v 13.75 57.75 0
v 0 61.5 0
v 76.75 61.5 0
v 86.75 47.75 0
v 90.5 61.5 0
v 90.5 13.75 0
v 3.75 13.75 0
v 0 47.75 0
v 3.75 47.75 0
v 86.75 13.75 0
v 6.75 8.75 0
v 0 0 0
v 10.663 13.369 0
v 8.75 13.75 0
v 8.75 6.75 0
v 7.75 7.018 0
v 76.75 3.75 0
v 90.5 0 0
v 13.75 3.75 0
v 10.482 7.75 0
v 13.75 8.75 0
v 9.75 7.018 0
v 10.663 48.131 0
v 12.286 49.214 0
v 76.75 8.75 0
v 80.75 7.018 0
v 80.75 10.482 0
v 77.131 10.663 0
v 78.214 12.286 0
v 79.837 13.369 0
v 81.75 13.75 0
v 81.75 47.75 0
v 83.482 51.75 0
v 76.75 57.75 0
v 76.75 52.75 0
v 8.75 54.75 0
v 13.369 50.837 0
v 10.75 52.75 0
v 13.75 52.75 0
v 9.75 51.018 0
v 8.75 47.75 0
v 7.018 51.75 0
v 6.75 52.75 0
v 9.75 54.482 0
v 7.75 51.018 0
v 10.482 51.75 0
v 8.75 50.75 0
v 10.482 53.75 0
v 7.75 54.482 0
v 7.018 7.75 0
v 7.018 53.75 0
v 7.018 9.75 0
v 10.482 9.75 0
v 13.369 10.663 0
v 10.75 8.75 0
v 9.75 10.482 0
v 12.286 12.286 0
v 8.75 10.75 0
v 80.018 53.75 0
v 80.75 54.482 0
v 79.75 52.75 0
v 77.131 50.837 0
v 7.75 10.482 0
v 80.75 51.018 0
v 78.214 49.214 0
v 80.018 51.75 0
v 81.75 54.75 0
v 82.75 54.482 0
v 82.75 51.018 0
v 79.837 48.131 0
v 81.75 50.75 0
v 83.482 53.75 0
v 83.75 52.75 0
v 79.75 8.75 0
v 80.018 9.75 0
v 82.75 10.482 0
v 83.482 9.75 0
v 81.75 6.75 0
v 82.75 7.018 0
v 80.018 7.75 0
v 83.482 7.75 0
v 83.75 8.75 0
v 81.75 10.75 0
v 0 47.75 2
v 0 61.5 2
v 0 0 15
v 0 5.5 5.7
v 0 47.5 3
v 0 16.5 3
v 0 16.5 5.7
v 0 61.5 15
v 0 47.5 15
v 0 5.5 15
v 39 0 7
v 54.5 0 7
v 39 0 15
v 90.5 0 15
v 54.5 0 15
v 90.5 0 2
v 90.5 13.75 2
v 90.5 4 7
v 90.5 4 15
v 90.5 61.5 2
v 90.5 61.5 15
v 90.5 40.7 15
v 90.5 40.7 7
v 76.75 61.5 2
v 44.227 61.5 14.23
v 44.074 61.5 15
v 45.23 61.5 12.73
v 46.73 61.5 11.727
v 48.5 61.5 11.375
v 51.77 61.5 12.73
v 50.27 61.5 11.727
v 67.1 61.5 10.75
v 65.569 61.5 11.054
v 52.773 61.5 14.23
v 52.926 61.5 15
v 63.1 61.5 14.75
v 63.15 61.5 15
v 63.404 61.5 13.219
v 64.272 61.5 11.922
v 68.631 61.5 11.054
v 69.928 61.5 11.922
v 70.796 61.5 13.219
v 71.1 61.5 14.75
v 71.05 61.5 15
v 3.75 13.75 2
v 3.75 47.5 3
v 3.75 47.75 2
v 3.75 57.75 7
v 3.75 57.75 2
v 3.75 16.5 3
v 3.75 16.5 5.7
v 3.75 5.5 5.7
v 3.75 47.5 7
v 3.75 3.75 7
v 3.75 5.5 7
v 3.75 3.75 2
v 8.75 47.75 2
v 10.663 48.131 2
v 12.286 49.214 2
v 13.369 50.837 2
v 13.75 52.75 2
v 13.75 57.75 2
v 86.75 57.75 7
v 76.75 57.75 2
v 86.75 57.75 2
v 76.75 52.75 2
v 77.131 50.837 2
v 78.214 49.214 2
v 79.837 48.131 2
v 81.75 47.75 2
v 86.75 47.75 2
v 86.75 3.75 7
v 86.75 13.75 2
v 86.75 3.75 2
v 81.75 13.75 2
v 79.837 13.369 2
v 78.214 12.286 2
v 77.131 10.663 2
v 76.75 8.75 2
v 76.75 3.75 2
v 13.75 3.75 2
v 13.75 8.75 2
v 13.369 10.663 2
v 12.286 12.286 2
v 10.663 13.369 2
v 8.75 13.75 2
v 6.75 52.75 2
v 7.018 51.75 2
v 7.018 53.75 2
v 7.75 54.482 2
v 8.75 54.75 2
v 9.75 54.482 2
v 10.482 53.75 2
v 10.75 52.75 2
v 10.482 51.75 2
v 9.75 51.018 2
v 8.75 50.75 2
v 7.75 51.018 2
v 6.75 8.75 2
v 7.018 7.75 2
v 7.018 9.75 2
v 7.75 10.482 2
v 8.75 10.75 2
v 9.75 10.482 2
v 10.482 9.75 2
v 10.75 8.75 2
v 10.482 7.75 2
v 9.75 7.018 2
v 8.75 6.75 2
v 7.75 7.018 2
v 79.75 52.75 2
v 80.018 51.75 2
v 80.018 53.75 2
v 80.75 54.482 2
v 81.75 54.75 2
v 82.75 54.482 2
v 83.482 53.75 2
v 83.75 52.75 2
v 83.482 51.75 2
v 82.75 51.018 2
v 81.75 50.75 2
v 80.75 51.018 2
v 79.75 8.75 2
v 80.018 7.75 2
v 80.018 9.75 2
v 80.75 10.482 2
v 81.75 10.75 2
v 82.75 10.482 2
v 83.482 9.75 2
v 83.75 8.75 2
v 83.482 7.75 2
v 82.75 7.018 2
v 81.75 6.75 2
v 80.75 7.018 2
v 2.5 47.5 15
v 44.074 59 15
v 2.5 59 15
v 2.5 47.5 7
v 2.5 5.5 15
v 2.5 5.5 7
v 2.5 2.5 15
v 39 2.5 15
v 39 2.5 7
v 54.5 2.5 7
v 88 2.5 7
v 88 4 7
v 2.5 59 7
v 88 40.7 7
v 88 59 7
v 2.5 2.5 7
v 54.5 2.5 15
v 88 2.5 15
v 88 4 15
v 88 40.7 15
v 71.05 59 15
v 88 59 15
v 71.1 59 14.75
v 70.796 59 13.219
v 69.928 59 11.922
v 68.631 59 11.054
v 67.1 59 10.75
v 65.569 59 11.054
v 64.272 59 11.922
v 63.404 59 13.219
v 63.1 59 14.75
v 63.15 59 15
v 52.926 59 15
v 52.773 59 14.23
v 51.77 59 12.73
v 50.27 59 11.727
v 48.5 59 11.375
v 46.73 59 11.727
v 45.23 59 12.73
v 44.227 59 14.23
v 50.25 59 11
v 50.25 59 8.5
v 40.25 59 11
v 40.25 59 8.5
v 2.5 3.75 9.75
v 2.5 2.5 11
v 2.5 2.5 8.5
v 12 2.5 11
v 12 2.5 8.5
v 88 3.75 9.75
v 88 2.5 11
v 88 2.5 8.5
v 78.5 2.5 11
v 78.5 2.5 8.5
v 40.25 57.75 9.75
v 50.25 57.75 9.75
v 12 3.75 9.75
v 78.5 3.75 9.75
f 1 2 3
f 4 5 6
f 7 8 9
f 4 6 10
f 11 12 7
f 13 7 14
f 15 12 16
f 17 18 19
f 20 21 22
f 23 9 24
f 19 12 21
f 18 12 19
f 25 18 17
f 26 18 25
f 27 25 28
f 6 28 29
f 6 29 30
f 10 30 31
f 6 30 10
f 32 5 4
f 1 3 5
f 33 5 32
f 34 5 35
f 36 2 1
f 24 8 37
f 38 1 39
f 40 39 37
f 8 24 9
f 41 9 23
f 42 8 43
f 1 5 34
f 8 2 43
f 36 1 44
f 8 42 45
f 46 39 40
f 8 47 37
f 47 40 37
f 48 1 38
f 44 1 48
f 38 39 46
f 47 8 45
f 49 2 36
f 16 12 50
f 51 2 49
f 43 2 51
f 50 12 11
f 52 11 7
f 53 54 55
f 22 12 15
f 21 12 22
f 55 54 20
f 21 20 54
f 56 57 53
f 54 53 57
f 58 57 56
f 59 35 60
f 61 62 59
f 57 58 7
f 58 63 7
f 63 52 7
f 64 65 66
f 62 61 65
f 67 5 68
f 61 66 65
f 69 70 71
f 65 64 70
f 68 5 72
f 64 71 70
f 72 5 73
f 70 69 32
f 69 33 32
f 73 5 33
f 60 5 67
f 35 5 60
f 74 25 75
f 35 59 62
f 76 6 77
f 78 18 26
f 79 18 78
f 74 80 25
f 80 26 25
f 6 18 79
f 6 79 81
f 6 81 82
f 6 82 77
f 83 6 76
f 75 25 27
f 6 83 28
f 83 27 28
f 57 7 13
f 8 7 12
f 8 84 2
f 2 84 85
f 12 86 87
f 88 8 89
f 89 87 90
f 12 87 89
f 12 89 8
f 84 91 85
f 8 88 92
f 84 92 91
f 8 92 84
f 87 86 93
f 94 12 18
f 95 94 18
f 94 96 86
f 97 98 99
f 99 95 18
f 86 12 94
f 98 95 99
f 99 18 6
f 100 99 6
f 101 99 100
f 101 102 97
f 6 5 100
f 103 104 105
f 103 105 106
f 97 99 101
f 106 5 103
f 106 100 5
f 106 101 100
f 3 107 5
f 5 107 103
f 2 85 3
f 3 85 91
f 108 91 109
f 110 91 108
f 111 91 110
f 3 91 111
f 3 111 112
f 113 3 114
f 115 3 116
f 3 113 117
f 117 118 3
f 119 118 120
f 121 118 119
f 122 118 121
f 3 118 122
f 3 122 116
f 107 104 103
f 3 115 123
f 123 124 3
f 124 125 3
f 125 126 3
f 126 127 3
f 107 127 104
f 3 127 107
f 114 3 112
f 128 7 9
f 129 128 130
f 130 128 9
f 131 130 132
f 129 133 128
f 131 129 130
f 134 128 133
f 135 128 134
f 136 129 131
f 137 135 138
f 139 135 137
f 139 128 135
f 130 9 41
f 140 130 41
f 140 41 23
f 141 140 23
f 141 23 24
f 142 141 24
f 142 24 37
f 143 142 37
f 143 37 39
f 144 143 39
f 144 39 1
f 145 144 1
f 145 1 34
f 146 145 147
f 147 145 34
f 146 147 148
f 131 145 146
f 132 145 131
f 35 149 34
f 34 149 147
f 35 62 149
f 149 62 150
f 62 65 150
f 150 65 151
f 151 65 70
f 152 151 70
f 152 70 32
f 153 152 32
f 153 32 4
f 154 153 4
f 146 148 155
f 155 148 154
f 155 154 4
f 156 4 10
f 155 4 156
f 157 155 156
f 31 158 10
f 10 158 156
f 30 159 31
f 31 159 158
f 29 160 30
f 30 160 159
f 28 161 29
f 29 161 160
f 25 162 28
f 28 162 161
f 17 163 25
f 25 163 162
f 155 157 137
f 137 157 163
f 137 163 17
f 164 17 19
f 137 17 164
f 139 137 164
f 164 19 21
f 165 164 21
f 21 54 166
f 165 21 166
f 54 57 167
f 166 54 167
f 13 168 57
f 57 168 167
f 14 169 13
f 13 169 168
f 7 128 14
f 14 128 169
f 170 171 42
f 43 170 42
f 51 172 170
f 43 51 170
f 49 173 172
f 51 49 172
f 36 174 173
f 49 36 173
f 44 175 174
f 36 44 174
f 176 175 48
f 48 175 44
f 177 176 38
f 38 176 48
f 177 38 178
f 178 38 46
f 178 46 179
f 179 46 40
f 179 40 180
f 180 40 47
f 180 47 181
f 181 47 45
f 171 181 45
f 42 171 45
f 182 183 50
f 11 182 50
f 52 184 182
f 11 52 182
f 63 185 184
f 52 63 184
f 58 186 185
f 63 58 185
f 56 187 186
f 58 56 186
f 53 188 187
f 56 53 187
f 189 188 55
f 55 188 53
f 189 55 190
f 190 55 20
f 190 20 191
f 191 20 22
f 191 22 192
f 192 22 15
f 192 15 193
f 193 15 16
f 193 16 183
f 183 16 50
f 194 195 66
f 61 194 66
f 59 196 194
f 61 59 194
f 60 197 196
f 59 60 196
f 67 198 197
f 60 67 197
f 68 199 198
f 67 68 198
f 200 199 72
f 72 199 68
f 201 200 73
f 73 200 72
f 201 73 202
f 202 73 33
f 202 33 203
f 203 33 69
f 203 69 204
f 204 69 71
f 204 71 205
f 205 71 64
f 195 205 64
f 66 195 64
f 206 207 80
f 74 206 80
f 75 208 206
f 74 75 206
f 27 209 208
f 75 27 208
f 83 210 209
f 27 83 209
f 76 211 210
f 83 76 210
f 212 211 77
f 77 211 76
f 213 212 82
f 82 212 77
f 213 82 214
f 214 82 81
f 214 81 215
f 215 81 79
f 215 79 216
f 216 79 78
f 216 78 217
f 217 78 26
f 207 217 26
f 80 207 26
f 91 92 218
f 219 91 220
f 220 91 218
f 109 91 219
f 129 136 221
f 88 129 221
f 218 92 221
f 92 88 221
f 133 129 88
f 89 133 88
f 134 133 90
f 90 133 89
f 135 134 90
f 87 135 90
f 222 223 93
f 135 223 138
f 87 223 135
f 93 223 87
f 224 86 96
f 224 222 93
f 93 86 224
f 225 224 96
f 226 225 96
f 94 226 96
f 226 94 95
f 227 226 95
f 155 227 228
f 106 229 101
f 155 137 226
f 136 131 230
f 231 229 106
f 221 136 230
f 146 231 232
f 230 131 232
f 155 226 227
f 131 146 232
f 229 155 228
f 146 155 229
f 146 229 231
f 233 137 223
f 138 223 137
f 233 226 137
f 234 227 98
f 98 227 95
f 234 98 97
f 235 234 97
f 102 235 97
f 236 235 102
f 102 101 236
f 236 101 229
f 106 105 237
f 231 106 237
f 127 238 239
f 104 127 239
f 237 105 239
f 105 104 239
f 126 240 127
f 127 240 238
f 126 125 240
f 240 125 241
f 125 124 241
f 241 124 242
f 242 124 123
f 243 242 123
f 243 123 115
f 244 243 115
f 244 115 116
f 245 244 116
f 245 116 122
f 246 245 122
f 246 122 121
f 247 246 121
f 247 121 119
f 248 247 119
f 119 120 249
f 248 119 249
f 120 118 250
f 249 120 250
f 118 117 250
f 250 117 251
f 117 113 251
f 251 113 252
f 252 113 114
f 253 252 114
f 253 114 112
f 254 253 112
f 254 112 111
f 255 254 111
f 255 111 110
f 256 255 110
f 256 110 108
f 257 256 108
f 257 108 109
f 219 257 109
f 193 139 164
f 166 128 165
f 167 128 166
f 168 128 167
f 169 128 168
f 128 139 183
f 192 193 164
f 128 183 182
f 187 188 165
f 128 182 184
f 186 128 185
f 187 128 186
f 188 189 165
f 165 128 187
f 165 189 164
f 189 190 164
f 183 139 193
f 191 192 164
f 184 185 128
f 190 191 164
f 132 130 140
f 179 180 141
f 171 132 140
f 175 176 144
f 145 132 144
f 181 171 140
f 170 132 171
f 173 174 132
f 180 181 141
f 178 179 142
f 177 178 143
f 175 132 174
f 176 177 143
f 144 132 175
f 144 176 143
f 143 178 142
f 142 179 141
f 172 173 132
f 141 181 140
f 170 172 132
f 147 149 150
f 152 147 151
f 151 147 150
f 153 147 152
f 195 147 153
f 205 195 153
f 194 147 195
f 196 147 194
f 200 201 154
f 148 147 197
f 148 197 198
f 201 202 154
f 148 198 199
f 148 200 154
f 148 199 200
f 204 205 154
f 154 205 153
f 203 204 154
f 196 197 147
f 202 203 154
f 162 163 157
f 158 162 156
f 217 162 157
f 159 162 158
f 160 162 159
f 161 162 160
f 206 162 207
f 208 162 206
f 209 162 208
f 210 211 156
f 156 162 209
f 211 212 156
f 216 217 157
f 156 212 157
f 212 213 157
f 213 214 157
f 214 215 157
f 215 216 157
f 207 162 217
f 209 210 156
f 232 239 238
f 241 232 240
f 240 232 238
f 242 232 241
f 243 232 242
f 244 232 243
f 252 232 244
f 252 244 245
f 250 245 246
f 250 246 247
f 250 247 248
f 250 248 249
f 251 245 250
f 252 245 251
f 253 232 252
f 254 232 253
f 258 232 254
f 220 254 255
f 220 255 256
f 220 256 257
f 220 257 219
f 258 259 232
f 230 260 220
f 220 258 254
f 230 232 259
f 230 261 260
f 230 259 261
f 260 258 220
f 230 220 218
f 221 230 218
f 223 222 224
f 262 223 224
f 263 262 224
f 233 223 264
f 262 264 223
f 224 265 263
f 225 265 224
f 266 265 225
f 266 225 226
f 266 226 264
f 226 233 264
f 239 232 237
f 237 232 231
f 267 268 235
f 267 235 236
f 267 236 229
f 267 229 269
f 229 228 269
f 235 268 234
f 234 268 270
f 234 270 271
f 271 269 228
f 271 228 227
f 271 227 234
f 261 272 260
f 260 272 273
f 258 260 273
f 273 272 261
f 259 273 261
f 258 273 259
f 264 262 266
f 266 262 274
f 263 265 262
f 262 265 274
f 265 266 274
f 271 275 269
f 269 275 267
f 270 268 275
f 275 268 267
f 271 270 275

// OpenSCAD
// Rasperry Pi mounting bracket

rpil = 85;        // RPi board length
rpiw = 56;        // RPi board width
rpit = 1.5;       // RPi board thinkness
rpim = 1.25;      // RPi margin on PCB sides (except where HDMI port)
// For the following, corner with power connector is (0,0)
// with length along X-axis, and width along Y-axis.
// x=0 edge:
powerymin = 3.5;  // Min-Y of micro-USP power connector (no clearance)
powerymax = 11.5; // Max-Y of micro-USP power connector (no clearance)
powerht   = -0.8;  // Height (from base of board)
cardymin  = 14.5; // Min-Y of SD card holder
cardymax  = 44.5; // Max-Y ..
cardht    = -3.5; // Height (*below* base of board, with clearance)
// y=0 edge
hdmixmin = 37;    // Min-X of HDMI socket (no clearance)
hdmixmax = 51.5;  // Max-X of HDMI socket (no clearance)
hdmiht   = 7.6;   // Height (from base of board)
// x=max edge
netminy  = 2;     // Min-Y of Network socket
netmaxy  = 18;    // Max-Y ..
netht    = 15;    // Height (from base of board)
usbminy  = 24.5;  // Min-Y of USB socket
usbmaxy  = 37.7;  // Max-Y ..
usbht    = 17.5;  // Height (from base of board)
// y=max edge
videox   = 46;    // Y-offset to centre of video connector
videoh   = 9;     // H-offset (from base of board)
videod   = 8.25;  // Diameter of video connector ** allow for plug **
audiox   = 64.6;  // Y-offset to centre of audio connector
audioh   = 7.75;  // H-offset (from base of board)
audiod   = 7;     // Diameter of audeo connector

module box(l, w, h, t)
{
  t2 = t * 2;
  difference()
  {
    cube( size=[l,w,h] );
    translate([t,t,t])
      cube( size=[l-t2, w-t2, h-t]) ;
  }
}

module boxsides(l, w, h, t)
{
  t2 = t * 2;
  difference()
  {
    cube( size=[l,w,h] );
    translate([t,t,0])
      cube( size=[l-t2, w-t2, h]) ;
  }
}

// len, width, height overall (internal)
// Wall thickness
// Support shoulder thickness
// Support height
module frame(lo, wo, ho, tw, ts, hs)
{
  difference()
  {
    boxsides(lo+tw*2, wo+tw*2, ho, tw+ts);
    translate([tw,tw,hs])
      cube(size=[lo,wo,ho]);
  }
}

// Mounting tab
module tab(l,w,t,cornerrad,holedia,xo,yo)
{
  rc = ((xo==0) && (yo==0)) ?  0 :
       ((xo==1) && (yo==0)) ?  1 :
       ((xo==1) && (yo==1)) ?  2 : 3;
  rotate([0,0,rc*90])
  {
    difference()
    {
      union()
      {
        translate([0,0,0]) cube(size=[l-cornerrad, w, t]);
        translate([0,0,0]) cube(size=[l, w-cornerrad, t]);
        translate ([l-cornerrad,w-cornerrad,0])
          cylinder(r=cornerrad, h=t, $fn=16);
      }
      translate([l-cornerrad, w-cornerrad, -t/2])
        cylinder(r=holedia/2, h=t*2, $fn=12);
    }
  }
}

// Cutout in frame side
module cutout(minx, maxx, miny, maxy, baseh, h)
{
  clearance = 0.5;
  cutheight = abs(h)+20;;
  if ( h > 0 )
  {
    translate([minx-clearance,miny-clearance,baseh])
      cube(size=[maxx-minx+2*clearance, maxy-miny+2*clearance, cutheight]);
  }
  else
  {
    translate([minx-clearance,miny-clearance,baseh+h-clearance])
      cube(size=[maxx-minx+2*clearance, maxy-miny+2*clearance, cutheight]);    
  }
}

// Hole cutout Y-aligned in frame side
module cutoutholeY(x, miny, maxy, h, d)
{
  clearance = 0.5;
  translate([x,miny-clearance,h])
    rotate([-90,0,0])    // (rotate from +Z to +Y axis)
      # cylinder(r=d/2+clearance,h=maxy-miny+clearance*2,$fn=16);
}

// Board retaining ridge
// min-x, max-x, y-pos of centre, height of centre, depth
module ridgeX(xmin, xmax, y, h, d)
{
  d2 = d*sqrt(2);
  translate([xmin,y,h])
    rotate([45,0,0])
      translate([0,0,0])
        # cube(size=[xmax-xmin,d2,d2]);
}

frameth  = 2.5;   // Thickness of outer frame
boardht  = 7;     // Height to board
totalht  = 15;    // Height overall
tabln    = 10;    // Length of corner tab
tabwd    = 10;    // Width of corner tab
tabth    = 2;     // Thickness of corner tab
holedia  = 4;     // Diamater screw hole in tab

module rpimount()
{
  clearance = 0.5;
  lenov = rpil+frameth*2+clearance;    // Overall length
  widov = rpiw+frameth*2+clearance;    // Overall width
  supth = frameth+rpim;                // Thickness of support frame
  tablo = tabln+supth;                 // Screw tab length overall
  tabwo = tabwd+supth;                 // Screw tab width overall
  difference()
  {
    union()
    {
      frame(rpil+clearance,rpiw+clearance,totalht,frameth,rpim,boardht);
      // Add mounting tabs
      for (xo = [0,1])
      {
        for (yo = [0,1])
        {
        translate ([xo*lenov,yo*widov,0])
          tab(tablo, tabwo, tabth, (min(tablo,tabwo)-supth)/2, holedia, xo, yo);
        }
      }
      // Add retaining ridges
      ridgeX(0, 12,                frameth,       boardht+rpit, 1.25);
      ridgeX(lenov-12, lenov,      frameth,       boardht+rpit, 1.25);
      ridgeX(lenov/2-5, lenov/2+5, widov-frameth, boardht+rpit, 1.25);
    }
    // Cutout for power connector (extended to avoid silly stick-up post)
    cutout(0,supth,frameth+powerymin,frameth+powerymax+10,boardht,powerht);
    // Cutout for SD card
    cutout(0,supth,frameth+cardymin,frameth+cardymax,boardht,cardht);
    // Cutout for HDMI
    cutout(frameth+hdmixmin,frameth+hdmixmax,0,supth,boardht,hdmiht);
    // Cutout for Ethernet (extebded to avoid silly sick=up post)
    cutout(lenov-supth,lenov,frameth+netminy,frameth+netmaxy+10,boardht,netht);
    // Cutout for USB
    cutout(lenov-supth,lenov,frameth+usbminy,frameth+usbmaxy,boardht,usbht);
    // Cutout for audio
    cutoutholeY(audiox+frameth,widov-supth,widov,boardht+audioh,audiod);
    // Cutout for video
    cutoutholeY(videox+frameth,widov-supth,widov,boardht+videoh,videod);
  }
}

rpimount();

//tab(10, 20, 2, 3, 4);

//ridgeX(0,10,0,2,2);
